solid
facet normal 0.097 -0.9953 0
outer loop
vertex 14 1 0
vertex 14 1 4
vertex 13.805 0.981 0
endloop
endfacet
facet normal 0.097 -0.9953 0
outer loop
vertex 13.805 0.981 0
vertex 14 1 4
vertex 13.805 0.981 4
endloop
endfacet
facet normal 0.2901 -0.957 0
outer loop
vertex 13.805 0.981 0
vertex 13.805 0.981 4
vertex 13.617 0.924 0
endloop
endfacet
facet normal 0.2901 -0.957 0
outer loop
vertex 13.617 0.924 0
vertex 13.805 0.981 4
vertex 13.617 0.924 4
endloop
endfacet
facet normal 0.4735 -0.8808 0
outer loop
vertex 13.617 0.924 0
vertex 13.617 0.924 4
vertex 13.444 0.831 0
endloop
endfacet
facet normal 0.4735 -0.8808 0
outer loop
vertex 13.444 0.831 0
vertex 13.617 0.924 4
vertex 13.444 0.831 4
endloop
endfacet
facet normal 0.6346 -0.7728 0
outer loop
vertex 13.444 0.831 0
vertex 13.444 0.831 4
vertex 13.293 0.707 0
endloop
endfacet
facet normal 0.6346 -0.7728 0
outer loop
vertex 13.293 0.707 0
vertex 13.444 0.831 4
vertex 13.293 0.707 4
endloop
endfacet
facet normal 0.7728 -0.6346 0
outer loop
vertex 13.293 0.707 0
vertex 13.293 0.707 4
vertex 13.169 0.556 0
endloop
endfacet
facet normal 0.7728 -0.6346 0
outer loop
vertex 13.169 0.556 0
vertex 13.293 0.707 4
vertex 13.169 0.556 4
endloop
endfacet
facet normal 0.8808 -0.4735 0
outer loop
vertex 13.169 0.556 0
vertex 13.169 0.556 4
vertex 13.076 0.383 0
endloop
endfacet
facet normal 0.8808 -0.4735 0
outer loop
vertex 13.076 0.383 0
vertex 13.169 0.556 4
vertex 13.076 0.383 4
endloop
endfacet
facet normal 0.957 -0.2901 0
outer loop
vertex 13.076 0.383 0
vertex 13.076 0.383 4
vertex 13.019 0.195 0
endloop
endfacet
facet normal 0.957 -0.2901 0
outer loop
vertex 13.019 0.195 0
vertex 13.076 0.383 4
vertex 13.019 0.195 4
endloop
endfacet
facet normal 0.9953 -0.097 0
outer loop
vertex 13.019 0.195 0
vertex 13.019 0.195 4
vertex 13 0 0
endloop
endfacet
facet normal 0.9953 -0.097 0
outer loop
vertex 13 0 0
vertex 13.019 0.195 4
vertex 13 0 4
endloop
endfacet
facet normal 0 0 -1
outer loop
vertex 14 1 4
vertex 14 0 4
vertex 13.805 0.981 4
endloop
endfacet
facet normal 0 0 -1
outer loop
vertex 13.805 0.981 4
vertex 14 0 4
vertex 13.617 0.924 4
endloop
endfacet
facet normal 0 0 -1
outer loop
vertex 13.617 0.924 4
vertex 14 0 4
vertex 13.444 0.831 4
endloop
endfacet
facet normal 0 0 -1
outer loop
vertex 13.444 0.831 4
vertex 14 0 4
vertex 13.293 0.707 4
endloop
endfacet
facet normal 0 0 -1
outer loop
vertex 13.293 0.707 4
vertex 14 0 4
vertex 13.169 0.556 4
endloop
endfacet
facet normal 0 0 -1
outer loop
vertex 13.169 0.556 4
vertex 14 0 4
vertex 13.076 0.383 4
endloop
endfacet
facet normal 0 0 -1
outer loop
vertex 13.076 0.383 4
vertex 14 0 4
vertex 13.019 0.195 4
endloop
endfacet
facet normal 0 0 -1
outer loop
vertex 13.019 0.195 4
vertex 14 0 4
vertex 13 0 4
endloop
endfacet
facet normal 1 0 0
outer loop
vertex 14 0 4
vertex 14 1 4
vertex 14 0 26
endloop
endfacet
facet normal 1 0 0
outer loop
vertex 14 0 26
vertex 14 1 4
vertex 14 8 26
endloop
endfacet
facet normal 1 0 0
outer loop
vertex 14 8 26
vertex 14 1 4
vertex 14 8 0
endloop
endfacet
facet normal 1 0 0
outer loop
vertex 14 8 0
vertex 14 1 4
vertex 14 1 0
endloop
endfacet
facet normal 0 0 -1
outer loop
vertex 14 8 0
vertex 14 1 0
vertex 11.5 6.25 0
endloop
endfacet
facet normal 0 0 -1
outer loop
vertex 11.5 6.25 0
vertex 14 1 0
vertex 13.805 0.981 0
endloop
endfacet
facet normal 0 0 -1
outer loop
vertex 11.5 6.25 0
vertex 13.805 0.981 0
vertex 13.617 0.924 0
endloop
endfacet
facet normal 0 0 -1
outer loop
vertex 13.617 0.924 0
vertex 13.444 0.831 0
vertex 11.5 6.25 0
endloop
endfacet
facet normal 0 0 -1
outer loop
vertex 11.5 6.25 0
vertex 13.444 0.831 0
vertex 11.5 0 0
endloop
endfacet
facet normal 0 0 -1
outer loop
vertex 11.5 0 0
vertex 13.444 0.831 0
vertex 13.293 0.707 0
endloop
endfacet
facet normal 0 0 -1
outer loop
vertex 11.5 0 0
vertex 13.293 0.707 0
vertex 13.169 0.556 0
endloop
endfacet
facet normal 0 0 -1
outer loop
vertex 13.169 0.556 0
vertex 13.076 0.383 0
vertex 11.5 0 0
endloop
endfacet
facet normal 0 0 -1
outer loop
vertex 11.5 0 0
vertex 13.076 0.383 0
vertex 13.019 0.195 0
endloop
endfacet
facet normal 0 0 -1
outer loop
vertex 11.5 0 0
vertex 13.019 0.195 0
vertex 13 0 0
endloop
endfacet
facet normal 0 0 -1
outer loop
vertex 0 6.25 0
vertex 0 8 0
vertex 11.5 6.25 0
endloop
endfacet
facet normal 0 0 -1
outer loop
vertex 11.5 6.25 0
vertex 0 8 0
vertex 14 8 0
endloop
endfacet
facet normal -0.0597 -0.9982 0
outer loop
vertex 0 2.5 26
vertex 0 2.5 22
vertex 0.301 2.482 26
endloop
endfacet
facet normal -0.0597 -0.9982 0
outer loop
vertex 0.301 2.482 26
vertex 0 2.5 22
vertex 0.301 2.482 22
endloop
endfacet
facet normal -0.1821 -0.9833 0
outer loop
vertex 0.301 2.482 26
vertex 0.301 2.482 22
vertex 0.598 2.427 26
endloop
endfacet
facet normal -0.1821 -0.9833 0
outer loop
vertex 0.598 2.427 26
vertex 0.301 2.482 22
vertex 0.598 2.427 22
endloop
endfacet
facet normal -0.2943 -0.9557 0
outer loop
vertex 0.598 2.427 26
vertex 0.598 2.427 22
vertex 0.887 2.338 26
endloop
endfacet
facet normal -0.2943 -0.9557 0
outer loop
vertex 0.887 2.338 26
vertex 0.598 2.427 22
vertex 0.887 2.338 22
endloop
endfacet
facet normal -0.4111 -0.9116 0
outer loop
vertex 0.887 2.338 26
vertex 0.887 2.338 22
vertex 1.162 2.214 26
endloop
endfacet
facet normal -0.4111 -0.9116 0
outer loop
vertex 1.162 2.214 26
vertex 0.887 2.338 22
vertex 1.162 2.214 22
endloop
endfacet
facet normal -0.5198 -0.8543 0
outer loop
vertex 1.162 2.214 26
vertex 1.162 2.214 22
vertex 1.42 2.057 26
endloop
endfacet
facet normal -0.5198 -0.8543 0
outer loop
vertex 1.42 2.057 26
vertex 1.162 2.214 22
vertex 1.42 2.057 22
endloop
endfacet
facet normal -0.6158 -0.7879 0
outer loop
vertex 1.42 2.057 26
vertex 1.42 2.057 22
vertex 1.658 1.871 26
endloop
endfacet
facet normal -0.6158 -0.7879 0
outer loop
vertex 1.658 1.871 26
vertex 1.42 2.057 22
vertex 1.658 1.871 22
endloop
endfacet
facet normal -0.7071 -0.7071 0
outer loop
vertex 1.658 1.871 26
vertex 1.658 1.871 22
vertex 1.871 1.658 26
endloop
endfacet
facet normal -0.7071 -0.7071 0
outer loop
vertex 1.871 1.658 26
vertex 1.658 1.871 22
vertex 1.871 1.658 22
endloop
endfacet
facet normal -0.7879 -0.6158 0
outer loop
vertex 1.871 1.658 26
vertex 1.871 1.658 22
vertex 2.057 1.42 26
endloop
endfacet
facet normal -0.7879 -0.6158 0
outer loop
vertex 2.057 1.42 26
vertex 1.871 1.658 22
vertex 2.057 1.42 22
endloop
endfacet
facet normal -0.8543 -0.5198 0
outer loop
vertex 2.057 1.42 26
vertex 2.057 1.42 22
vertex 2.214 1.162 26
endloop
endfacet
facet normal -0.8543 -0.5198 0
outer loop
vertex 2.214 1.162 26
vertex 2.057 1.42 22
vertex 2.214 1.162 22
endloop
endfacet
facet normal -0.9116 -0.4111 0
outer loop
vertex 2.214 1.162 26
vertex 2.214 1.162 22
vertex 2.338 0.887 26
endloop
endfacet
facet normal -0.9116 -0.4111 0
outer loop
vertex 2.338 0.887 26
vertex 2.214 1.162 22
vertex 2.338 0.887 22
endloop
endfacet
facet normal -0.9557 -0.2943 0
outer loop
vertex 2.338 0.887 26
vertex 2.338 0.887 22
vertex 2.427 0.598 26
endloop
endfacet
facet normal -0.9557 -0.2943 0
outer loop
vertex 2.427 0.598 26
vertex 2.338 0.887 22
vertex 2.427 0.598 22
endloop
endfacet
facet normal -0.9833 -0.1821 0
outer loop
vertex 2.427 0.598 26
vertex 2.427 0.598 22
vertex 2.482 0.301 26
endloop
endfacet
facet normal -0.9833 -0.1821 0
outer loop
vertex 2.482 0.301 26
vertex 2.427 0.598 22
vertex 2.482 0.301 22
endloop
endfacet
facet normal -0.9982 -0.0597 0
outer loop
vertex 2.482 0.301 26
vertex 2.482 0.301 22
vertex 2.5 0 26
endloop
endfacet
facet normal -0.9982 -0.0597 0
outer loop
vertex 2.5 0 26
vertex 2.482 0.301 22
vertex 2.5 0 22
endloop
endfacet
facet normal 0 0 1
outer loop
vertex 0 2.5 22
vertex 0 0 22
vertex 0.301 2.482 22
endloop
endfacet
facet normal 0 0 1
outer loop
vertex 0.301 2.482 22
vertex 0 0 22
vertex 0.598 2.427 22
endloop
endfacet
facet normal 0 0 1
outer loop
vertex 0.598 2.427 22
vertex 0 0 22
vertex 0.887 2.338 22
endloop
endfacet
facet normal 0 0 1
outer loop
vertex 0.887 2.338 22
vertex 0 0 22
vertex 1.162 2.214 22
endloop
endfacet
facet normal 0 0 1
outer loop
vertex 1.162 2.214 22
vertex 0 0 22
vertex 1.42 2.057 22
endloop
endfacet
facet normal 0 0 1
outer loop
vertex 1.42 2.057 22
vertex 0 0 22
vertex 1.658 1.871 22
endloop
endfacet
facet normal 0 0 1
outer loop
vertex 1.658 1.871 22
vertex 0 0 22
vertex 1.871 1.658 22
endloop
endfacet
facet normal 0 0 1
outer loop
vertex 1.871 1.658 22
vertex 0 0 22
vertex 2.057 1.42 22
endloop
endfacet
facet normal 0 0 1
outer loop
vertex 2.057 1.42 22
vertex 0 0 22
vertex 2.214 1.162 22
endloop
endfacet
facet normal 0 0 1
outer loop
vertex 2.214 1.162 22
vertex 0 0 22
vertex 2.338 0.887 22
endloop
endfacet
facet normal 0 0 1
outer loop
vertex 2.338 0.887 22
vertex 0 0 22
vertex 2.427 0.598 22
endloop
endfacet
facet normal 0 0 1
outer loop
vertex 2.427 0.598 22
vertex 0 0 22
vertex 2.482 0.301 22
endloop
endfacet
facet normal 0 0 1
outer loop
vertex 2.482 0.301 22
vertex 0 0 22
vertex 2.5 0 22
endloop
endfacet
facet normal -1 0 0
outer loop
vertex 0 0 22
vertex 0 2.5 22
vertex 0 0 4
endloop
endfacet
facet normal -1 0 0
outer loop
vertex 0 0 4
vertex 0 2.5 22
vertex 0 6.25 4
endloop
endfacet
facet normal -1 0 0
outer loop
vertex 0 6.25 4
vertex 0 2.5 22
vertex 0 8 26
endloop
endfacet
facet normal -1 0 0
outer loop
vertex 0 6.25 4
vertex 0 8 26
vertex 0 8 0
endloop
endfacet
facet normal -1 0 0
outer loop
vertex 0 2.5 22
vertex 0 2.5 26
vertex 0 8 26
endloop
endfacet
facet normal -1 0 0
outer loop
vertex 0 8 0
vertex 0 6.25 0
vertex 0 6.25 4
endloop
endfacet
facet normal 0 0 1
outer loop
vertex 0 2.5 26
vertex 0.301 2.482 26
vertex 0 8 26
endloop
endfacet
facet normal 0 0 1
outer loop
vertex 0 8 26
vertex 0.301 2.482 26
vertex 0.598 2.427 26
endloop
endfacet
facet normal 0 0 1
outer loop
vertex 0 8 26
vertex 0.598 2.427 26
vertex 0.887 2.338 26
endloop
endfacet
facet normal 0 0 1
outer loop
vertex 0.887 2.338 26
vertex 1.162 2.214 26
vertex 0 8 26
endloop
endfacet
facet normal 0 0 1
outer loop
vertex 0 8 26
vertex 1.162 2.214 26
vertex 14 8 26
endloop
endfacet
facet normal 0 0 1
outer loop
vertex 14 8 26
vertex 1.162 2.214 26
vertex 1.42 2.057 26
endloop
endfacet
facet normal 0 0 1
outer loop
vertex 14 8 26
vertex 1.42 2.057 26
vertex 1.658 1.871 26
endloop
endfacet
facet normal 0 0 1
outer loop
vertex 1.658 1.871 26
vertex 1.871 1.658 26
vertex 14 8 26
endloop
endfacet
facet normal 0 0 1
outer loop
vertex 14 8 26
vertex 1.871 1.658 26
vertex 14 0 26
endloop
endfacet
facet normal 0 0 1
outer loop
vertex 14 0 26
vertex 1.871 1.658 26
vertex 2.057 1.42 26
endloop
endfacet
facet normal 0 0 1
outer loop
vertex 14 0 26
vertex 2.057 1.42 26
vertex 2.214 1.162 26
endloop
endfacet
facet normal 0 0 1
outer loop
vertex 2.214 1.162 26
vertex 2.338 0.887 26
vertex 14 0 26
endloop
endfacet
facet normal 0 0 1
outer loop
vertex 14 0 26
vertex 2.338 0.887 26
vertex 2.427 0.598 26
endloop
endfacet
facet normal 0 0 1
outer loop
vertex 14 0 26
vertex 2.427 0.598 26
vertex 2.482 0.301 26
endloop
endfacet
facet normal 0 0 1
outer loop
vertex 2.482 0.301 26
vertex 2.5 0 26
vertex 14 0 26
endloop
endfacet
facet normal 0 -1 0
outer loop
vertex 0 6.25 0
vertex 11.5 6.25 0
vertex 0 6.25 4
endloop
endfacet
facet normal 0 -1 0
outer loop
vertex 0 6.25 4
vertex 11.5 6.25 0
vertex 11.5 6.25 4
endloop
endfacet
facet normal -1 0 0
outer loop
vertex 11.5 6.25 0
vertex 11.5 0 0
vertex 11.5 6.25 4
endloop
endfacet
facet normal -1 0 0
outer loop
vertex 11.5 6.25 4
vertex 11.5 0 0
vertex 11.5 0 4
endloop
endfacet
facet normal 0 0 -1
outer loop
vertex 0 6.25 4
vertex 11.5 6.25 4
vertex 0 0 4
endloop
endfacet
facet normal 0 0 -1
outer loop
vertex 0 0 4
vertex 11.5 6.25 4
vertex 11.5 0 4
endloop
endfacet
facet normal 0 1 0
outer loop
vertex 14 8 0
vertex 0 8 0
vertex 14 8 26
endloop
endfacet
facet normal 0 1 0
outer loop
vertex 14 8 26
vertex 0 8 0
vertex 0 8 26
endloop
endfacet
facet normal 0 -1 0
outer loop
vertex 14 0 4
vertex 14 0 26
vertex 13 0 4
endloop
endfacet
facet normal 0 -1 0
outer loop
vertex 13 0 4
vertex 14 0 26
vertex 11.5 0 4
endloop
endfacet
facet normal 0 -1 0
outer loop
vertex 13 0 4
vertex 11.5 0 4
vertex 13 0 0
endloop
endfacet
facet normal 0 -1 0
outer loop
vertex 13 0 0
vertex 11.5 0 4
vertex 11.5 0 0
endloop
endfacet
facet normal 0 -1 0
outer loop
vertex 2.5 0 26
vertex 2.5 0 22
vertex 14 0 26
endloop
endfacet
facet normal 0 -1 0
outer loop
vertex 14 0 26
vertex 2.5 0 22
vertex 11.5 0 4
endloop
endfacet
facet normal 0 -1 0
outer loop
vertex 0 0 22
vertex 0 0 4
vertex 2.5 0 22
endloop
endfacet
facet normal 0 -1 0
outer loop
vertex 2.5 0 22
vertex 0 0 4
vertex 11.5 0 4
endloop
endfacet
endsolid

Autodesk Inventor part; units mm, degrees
ref_plane "YZ Plane" through (0, 0, 0) normal (1, 0, 0) x (0, 1, 0)
sketch "Skizze1" plane through (0, 0, 0) normal (0, 0, 1) x (1, 0, 0)
  line L0 (0, 0) -> (14, 0)
  line L1 (14, 0) -> (14, 8)
  line L2 (14, 8) -> (0, 8)
  line L3 (0, 8) -> (0, 0)
extrude "Extrusion1" add sketch "Skizze1" along normal blind 26
ref_plane "Arbeitsebene1" through (0, 0, 4) normal (0, 0, 1) x (1, 0, 0)
sketch "Skizze2" plane through (0, 0, 4) normal (0, 0, 1) x (1, 0, 0)
  line L0 (0, 0) -> (11.5, 0)
  line L1 (11.5, 0) -> (11.5, 6.25)
  line L2 (11.5, 6.25) -> (0, 6.25)
  line L3 (0, 6.25) -> (0, 0)
extrude "Extrusion2" cut sketch "Skizze2" against normal blind 22
ref_plane "Arbeitsebene2" through (0, 0, 26) normal (0, 0, 1) x (1, 0, 0)
sketch "Skizze3" plane through (0, 0, 26) normal (0, 0, 1) x (1, 0, 0)
  circle A0 centre (0, 0) radius 2.5
extrude "Extrusion3" cut sketch "Skizze3" against normal blind 4
sketch "Skizze4" plane through (0, 0, 0) normal (0, 0, 1) x (1, 0, 0)
  circle A0 centre (0, 0) radius 1
  circle A1 centre (14, 0) radius 1
extrude "Extrusion4" cut sketch "Skizze4" along normal blind 4
properties part number "Servo_Halterung"
